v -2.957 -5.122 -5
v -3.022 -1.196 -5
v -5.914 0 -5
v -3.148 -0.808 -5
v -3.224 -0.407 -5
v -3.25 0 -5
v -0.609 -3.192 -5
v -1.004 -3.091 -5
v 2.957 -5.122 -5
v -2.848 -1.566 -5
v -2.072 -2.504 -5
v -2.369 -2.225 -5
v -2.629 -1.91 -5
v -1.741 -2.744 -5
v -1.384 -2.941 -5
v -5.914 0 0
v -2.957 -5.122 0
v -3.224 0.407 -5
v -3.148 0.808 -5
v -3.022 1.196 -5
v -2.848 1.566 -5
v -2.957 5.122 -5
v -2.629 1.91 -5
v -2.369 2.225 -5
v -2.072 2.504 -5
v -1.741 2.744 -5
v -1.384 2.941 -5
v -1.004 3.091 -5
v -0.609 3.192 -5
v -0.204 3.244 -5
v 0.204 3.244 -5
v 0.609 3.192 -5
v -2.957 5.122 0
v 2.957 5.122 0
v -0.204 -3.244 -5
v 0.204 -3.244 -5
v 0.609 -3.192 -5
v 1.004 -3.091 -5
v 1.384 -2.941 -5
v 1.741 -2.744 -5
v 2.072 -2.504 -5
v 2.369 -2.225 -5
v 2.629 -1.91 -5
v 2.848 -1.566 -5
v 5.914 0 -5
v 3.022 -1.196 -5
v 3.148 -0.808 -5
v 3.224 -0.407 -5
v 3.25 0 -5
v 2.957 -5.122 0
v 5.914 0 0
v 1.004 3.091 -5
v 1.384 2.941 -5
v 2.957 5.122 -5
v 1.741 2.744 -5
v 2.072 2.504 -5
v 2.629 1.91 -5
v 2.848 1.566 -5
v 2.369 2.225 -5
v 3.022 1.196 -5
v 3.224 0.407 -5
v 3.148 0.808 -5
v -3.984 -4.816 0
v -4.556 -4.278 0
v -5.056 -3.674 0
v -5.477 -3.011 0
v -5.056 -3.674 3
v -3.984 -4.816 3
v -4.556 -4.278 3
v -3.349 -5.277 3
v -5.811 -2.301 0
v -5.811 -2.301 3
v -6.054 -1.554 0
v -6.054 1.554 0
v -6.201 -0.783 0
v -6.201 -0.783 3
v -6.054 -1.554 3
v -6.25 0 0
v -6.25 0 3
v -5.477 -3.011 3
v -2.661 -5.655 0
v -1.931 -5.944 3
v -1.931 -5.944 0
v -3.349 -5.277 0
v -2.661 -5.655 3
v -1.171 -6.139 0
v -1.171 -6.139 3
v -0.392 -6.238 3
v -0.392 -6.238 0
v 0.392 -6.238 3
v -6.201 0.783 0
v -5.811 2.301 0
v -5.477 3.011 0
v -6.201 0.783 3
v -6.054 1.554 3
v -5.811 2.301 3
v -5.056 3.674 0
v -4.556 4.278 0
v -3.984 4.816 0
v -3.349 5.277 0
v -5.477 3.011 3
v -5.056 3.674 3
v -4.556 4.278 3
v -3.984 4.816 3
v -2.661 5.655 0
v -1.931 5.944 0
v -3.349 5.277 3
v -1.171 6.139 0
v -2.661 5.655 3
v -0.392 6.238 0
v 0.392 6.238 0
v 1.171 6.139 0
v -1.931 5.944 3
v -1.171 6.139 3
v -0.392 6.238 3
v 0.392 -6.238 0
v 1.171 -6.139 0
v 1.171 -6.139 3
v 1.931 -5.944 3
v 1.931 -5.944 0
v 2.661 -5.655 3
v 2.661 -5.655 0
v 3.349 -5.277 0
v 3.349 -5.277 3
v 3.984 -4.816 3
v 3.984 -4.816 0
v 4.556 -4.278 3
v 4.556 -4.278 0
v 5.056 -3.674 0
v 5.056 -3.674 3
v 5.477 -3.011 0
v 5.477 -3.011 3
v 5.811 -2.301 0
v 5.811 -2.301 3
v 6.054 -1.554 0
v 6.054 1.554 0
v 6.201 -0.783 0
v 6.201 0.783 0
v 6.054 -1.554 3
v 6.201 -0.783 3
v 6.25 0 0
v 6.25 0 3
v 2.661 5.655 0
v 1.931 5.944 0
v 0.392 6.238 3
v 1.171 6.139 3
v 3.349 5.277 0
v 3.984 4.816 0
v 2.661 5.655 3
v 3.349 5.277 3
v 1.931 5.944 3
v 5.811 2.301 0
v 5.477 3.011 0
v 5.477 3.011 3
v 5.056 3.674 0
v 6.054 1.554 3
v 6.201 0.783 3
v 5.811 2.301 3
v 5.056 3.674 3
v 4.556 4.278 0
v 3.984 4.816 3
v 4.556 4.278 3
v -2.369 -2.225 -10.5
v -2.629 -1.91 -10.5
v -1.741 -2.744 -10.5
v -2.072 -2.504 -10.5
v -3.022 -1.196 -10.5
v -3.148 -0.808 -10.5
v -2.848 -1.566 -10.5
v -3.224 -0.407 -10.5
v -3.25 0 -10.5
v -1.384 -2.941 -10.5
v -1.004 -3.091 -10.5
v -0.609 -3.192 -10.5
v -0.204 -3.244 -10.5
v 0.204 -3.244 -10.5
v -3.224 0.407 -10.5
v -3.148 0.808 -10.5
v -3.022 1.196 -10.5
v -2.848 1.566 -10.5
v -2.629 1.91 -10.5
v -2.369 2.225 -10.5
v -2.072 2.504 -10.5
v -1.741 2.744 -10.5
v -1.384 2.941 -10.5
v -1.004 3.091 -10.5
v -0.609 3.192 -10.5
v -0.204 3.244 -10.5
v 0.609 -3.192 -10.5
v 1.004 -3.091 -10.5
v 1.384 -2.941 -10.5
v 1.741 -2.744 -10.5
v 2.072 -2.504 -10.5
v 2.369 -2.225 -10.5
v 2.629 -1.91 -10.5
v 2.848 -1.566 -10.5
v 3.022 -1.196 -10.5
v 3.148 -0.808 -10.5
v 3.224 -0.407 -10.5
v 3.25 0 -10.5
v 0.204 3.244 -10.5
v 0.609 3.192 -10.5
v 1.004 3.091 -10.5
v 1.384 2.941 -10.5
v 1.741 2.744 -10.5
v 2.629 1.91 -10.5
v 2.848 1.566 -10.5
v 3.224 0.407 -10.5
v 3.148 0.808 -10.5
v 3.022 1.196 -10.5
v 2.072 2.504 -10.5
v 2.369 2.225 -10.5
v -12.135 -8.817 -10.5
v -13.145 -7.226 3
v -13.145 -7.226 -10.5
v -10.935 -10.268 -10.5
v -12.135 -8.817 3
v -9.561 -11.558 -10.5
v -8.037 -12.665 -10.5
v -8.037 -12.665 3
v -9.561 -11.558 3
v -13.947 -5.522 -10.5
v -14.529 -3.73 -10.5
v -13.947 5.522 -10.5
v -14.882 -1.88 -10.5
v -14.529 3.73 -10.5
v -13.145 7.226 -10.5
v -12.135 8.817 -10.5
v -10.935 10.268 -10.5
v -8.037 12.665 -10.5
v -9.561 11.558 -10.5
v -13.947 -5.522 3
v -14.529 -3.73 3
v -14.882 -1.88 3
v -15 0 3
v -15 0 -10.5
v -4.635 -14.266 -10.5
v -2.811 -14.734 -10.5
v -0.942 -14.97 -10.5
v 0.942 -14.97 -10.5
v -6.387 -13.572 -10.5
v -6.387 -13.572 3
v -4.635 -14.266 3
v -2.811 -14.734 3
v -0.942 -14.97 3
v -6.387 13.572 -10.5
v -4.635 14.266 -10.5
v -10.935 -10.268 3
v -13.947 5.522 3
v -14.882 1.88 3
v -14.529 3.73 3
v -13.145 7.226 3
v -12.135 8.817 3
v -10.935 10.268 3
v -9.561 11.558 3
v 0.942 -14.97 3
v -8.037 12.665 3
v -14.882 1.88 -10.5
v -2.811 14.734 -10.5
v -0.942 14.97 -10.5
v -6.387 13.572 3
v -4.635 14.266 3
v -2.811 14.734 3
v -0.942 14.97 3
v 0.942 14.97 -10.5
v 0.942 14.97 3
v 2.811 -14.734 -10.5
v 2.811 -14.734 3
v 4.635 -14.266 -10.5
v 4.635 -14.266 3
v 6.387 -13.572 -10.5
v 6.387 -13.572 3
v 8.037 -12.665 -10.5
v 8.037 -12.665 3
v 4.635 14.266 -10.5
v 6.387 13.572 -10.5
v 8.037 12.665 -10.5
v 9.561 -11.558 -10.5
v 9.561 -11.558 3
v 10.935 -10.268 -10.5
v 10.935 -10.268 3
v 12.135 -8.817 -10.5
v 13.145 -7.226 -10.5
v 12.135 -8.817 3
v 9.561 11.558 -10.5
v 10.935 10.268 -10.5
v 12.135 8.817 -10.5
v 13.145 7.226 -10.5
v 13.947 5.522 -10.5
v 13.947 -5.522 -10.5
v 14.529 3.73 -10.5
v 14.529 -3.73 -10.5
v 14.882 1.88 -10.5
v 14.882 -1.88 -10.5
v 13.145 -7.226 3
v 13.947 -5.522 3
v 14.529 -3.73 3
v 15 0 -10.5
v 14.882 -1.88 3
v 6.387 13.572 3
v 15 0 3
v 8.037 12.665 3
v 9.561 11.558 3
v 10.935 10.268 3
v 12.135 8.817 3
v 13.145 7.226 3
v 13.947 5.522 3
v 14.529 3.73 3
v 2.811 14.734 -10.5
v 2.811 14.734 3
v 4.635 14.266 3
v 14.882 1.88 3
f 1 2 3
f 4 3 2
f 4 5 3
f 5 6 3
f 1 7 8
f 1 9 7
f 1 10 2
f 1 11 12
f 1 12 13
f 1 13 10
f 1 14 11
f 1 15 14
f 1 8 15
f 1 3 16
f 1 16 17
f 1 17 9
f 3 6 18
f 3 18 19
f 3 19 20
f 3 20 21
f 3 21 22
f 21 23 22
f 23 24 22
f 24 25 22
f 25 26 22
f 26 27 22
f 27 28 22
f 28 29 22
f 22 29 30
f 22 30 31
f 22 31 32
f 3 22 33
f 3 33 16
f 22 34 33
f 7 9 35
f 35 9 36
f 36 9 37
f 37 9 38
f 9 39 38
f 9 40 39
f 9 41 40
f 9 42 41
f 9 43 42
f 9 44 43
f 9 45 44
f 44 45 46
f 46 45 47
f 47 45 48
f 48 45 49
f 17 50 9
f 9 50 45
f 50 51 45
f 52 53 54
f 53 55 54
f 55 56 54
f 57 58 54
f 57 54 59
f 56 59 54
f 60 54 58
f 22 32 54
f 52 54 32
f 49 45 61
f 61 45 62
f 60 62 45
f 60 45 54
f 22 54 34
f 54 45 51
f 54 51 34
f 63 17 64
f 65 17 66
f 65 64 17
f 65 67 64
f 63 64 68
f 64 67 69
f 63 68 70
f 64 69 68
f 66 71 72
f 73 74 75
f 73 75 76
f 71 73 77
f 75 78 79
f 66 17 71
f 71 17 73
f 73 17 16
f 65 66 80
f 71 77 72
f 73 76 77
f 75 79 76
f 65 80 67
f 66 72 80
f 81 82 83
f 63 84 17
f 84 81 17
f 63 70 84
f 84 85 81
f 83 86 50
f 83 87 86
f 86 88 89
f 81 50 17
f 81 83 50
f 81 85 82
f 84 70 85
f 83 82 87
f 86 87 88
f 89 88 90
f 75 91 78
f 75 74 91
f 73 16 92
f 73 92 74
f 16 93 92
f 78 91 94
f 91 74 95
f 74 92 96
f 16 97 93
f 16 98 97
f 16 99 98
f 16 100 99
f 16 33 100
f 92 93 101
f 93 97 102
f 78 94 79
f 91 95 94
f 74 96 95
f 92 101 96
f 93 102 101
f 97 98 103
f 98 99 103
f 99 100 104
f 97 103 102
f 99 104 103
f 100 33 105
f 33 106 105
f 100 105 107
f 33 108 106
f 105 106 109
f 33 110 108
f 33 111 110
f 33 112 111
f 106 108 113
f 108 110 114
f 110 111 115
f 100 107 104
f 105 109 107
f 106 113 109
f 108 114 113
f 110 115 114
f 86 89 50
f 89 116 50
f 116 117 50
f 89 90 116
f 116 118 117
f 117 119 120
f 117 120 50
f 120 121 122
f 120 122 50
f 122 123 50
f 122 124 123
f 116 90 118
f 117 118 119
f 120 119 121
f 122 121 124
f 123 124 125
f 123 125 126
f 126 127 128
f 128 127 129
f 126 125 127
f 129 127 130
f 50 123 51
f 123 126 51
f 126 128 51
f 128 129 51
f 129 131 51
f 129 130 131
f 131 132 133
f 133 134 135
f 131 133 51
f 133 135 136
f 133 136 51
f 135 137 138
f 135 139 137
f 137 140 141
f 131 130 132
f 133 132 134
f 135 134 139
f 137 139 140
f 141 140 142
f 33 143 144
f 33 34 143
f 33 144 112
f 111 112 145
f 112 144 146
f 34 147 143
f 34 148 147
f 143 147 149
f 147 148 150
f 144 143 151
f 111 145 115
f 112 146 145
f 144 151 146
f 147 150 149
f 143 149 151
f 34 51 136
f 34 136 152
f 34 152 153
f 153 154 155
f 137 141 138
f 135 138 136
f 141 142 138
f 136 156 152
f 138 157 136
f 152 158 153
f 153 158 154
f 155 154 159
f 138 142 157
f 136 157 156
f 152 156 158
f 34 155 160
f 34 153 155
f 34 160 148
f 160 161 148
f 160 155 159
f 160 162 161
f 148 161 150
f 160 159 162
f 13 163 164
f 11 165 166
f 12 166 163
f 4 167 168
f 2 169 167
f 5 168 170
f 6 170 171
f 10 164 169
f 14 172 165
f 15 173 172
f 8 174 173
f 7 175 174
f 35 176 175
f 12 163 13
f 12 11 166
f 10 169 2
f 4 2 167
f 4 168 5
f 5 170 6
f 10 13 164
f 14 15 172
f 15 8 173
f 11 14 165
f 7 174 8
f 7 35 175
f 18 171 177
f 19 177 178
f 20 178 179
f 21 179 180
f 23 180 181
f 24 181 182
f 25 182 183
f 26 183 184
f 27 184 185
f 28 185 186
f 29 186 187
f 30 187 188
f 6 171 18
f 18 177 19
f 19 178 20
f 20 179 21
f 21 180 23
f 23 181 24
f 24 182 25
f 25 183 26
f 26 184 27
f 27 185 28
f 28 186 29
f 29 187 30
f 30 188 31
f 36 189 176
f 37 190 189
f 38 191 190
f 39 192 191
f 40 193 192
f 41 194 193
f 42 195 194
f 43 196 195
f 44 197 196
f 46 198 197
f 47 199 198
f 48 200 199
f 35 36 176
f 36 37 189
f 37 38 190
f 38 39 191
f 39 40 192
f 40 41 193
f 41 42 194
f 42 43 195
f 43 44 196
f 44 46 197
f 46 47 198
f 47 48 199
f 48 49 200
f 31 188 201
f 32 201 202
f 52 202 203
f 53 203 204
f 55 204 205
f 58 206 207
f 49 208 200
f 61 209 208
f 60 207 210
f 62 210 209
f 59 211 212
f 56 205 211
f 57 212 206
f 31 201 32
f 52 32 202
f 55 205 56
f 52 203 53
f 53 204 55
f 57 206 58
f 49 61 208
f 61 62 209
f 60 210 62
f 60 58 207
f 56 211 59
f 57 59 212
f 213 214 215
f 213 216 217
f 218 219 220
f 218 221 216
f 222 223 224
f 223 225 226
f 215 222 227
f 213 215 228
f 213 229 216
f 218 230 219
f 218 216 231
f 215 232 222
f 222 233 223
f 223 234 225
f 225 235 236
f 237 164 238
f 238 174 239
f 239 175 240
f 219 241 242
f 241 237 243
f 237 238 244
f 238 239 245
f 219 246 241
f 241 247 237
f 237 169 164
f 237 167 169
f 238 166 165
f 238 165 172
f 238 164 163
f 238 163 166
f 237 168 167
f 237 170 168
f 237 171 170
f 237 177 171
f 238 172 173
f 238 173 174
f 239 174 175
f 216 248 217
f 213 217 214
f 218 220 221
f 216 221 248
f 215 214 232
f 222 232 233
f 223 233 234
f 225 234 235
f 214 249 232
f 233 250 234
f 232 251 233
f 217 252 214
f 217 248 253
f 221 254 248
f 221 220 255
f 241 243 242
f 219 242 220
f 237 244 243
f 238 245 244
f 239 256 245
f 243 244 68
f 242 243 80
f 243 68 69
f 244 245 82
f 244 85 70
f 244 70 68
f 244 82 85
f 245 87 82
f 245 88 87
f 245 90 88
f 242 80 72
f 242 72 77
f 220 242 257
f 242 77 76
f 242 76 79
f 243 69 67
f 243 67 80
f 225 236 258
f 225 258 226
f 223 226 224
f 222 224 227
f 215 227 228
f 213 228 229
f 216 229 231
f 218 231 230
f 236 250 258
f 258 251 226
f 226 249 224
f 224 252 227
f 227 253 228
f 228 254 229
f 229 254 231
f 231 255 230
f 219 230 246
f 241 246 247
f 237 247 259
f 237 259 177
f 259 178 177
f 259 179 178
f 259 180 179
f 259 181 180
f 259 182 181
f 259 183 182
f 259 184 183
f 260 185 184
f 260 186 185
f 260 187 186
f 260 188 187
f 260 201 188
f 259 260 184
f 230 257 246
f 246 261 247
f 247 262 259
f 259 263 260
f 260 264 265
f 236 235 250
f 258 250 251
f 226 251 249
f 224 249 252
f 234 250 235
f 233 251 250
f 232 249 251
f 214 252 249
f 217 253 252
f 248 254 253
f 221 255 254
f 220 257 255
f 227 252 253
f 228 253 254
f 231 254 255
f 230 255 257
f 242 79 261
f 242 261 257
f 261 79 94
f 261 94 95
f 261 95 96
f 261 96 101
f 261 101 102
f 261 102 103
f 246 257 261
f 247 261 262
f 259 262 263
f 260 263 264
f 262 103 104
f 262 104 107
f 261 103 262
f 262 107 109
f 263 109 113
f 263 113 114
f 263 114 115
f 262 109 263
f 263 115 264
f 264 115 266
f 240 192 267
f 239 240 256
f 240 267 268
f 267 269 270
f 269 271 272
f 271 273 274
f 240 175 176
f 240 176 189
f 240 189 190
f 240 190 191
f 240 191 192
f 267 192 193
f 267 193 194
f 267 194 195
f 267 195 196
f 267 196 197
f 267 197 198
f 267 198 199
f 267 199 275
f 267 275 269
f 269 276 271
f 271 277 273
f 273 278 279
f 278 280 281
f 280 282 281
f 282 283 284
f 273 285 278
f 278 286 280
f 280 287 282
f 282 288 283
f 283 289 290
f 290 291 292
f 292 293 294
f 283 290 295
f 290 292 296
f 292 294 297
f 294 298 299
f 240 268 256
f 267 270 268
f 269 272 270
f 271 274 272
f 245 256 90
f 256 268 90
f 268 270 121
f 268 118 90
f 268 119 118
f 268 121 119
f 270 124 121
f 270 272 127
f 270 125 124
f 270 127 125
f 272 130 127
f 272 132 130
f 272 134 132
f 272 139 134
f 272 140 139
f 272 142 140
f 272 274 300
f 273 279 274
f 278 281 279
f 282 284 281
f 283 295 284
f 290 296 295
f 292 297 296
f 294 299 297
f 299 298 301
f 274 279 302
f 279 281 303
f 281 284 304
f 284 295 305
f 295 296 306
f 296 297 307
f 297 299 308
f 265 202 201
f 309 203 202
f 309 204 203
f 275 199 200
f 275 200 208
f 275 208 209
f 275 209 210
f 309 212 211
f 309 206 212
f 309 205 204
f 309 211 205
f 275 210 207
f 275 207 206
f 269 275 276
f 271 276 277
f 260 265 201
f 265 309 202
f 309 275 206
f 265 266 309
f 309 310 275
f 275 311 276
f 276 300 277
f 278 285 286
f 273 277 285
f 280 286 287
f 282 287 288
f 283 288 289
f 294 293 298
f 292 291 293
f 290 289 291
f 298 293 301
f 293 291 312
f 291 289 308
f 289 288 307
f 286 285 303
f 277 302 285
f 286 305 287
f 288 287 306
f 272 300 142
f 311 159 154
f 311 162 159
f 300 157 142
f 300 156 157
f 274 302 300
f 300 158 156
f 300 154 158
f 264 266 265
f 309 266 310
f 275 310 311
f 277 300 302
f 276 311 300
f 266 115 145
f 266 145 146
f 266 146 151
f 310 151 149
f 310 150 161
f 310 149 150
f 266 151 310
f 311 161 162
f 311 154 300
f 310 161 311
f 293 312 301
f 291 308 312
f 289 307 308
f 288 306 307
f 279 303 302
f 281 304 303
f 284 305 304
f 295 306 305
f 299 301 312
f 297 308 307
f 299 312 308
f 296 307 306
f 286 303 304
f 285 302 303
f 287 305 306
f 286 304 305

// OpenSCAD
$fn = 50;


difference() {
	union() {
		translate(v = [0, 0, -10.5000000000]) {
			cylinder(h = 13.5000000000, r = 15.0000000000);
		}
	}
	union() {
		translate(v = [0, 0, 0]) {
			rotate(a = [0, 0, 0]) {
				difference() {
					union() {
						translate(v = [0, 0, -5]) {
							linear_extrude(height = 5) {
								polygon(points = [[5.9142500000, 0.0000000000], [2.9571250000, 5.1218907443], [-2.9571250000, 5.1218907443], [-5.9142500000, 0.0000000000], [-2.9571250000, -5.1218907443], [2.9571250000, -5.1218907443]]);
							}
						}
					}
					union();
				}
			}
		}
		#cylinder(h = 3, r = 6.2500000000);
		#translate(v = [0, 0, -100.0000000000]) {
			cylinder(h = 200, r = 3.2500000000);
		}
	}
}
